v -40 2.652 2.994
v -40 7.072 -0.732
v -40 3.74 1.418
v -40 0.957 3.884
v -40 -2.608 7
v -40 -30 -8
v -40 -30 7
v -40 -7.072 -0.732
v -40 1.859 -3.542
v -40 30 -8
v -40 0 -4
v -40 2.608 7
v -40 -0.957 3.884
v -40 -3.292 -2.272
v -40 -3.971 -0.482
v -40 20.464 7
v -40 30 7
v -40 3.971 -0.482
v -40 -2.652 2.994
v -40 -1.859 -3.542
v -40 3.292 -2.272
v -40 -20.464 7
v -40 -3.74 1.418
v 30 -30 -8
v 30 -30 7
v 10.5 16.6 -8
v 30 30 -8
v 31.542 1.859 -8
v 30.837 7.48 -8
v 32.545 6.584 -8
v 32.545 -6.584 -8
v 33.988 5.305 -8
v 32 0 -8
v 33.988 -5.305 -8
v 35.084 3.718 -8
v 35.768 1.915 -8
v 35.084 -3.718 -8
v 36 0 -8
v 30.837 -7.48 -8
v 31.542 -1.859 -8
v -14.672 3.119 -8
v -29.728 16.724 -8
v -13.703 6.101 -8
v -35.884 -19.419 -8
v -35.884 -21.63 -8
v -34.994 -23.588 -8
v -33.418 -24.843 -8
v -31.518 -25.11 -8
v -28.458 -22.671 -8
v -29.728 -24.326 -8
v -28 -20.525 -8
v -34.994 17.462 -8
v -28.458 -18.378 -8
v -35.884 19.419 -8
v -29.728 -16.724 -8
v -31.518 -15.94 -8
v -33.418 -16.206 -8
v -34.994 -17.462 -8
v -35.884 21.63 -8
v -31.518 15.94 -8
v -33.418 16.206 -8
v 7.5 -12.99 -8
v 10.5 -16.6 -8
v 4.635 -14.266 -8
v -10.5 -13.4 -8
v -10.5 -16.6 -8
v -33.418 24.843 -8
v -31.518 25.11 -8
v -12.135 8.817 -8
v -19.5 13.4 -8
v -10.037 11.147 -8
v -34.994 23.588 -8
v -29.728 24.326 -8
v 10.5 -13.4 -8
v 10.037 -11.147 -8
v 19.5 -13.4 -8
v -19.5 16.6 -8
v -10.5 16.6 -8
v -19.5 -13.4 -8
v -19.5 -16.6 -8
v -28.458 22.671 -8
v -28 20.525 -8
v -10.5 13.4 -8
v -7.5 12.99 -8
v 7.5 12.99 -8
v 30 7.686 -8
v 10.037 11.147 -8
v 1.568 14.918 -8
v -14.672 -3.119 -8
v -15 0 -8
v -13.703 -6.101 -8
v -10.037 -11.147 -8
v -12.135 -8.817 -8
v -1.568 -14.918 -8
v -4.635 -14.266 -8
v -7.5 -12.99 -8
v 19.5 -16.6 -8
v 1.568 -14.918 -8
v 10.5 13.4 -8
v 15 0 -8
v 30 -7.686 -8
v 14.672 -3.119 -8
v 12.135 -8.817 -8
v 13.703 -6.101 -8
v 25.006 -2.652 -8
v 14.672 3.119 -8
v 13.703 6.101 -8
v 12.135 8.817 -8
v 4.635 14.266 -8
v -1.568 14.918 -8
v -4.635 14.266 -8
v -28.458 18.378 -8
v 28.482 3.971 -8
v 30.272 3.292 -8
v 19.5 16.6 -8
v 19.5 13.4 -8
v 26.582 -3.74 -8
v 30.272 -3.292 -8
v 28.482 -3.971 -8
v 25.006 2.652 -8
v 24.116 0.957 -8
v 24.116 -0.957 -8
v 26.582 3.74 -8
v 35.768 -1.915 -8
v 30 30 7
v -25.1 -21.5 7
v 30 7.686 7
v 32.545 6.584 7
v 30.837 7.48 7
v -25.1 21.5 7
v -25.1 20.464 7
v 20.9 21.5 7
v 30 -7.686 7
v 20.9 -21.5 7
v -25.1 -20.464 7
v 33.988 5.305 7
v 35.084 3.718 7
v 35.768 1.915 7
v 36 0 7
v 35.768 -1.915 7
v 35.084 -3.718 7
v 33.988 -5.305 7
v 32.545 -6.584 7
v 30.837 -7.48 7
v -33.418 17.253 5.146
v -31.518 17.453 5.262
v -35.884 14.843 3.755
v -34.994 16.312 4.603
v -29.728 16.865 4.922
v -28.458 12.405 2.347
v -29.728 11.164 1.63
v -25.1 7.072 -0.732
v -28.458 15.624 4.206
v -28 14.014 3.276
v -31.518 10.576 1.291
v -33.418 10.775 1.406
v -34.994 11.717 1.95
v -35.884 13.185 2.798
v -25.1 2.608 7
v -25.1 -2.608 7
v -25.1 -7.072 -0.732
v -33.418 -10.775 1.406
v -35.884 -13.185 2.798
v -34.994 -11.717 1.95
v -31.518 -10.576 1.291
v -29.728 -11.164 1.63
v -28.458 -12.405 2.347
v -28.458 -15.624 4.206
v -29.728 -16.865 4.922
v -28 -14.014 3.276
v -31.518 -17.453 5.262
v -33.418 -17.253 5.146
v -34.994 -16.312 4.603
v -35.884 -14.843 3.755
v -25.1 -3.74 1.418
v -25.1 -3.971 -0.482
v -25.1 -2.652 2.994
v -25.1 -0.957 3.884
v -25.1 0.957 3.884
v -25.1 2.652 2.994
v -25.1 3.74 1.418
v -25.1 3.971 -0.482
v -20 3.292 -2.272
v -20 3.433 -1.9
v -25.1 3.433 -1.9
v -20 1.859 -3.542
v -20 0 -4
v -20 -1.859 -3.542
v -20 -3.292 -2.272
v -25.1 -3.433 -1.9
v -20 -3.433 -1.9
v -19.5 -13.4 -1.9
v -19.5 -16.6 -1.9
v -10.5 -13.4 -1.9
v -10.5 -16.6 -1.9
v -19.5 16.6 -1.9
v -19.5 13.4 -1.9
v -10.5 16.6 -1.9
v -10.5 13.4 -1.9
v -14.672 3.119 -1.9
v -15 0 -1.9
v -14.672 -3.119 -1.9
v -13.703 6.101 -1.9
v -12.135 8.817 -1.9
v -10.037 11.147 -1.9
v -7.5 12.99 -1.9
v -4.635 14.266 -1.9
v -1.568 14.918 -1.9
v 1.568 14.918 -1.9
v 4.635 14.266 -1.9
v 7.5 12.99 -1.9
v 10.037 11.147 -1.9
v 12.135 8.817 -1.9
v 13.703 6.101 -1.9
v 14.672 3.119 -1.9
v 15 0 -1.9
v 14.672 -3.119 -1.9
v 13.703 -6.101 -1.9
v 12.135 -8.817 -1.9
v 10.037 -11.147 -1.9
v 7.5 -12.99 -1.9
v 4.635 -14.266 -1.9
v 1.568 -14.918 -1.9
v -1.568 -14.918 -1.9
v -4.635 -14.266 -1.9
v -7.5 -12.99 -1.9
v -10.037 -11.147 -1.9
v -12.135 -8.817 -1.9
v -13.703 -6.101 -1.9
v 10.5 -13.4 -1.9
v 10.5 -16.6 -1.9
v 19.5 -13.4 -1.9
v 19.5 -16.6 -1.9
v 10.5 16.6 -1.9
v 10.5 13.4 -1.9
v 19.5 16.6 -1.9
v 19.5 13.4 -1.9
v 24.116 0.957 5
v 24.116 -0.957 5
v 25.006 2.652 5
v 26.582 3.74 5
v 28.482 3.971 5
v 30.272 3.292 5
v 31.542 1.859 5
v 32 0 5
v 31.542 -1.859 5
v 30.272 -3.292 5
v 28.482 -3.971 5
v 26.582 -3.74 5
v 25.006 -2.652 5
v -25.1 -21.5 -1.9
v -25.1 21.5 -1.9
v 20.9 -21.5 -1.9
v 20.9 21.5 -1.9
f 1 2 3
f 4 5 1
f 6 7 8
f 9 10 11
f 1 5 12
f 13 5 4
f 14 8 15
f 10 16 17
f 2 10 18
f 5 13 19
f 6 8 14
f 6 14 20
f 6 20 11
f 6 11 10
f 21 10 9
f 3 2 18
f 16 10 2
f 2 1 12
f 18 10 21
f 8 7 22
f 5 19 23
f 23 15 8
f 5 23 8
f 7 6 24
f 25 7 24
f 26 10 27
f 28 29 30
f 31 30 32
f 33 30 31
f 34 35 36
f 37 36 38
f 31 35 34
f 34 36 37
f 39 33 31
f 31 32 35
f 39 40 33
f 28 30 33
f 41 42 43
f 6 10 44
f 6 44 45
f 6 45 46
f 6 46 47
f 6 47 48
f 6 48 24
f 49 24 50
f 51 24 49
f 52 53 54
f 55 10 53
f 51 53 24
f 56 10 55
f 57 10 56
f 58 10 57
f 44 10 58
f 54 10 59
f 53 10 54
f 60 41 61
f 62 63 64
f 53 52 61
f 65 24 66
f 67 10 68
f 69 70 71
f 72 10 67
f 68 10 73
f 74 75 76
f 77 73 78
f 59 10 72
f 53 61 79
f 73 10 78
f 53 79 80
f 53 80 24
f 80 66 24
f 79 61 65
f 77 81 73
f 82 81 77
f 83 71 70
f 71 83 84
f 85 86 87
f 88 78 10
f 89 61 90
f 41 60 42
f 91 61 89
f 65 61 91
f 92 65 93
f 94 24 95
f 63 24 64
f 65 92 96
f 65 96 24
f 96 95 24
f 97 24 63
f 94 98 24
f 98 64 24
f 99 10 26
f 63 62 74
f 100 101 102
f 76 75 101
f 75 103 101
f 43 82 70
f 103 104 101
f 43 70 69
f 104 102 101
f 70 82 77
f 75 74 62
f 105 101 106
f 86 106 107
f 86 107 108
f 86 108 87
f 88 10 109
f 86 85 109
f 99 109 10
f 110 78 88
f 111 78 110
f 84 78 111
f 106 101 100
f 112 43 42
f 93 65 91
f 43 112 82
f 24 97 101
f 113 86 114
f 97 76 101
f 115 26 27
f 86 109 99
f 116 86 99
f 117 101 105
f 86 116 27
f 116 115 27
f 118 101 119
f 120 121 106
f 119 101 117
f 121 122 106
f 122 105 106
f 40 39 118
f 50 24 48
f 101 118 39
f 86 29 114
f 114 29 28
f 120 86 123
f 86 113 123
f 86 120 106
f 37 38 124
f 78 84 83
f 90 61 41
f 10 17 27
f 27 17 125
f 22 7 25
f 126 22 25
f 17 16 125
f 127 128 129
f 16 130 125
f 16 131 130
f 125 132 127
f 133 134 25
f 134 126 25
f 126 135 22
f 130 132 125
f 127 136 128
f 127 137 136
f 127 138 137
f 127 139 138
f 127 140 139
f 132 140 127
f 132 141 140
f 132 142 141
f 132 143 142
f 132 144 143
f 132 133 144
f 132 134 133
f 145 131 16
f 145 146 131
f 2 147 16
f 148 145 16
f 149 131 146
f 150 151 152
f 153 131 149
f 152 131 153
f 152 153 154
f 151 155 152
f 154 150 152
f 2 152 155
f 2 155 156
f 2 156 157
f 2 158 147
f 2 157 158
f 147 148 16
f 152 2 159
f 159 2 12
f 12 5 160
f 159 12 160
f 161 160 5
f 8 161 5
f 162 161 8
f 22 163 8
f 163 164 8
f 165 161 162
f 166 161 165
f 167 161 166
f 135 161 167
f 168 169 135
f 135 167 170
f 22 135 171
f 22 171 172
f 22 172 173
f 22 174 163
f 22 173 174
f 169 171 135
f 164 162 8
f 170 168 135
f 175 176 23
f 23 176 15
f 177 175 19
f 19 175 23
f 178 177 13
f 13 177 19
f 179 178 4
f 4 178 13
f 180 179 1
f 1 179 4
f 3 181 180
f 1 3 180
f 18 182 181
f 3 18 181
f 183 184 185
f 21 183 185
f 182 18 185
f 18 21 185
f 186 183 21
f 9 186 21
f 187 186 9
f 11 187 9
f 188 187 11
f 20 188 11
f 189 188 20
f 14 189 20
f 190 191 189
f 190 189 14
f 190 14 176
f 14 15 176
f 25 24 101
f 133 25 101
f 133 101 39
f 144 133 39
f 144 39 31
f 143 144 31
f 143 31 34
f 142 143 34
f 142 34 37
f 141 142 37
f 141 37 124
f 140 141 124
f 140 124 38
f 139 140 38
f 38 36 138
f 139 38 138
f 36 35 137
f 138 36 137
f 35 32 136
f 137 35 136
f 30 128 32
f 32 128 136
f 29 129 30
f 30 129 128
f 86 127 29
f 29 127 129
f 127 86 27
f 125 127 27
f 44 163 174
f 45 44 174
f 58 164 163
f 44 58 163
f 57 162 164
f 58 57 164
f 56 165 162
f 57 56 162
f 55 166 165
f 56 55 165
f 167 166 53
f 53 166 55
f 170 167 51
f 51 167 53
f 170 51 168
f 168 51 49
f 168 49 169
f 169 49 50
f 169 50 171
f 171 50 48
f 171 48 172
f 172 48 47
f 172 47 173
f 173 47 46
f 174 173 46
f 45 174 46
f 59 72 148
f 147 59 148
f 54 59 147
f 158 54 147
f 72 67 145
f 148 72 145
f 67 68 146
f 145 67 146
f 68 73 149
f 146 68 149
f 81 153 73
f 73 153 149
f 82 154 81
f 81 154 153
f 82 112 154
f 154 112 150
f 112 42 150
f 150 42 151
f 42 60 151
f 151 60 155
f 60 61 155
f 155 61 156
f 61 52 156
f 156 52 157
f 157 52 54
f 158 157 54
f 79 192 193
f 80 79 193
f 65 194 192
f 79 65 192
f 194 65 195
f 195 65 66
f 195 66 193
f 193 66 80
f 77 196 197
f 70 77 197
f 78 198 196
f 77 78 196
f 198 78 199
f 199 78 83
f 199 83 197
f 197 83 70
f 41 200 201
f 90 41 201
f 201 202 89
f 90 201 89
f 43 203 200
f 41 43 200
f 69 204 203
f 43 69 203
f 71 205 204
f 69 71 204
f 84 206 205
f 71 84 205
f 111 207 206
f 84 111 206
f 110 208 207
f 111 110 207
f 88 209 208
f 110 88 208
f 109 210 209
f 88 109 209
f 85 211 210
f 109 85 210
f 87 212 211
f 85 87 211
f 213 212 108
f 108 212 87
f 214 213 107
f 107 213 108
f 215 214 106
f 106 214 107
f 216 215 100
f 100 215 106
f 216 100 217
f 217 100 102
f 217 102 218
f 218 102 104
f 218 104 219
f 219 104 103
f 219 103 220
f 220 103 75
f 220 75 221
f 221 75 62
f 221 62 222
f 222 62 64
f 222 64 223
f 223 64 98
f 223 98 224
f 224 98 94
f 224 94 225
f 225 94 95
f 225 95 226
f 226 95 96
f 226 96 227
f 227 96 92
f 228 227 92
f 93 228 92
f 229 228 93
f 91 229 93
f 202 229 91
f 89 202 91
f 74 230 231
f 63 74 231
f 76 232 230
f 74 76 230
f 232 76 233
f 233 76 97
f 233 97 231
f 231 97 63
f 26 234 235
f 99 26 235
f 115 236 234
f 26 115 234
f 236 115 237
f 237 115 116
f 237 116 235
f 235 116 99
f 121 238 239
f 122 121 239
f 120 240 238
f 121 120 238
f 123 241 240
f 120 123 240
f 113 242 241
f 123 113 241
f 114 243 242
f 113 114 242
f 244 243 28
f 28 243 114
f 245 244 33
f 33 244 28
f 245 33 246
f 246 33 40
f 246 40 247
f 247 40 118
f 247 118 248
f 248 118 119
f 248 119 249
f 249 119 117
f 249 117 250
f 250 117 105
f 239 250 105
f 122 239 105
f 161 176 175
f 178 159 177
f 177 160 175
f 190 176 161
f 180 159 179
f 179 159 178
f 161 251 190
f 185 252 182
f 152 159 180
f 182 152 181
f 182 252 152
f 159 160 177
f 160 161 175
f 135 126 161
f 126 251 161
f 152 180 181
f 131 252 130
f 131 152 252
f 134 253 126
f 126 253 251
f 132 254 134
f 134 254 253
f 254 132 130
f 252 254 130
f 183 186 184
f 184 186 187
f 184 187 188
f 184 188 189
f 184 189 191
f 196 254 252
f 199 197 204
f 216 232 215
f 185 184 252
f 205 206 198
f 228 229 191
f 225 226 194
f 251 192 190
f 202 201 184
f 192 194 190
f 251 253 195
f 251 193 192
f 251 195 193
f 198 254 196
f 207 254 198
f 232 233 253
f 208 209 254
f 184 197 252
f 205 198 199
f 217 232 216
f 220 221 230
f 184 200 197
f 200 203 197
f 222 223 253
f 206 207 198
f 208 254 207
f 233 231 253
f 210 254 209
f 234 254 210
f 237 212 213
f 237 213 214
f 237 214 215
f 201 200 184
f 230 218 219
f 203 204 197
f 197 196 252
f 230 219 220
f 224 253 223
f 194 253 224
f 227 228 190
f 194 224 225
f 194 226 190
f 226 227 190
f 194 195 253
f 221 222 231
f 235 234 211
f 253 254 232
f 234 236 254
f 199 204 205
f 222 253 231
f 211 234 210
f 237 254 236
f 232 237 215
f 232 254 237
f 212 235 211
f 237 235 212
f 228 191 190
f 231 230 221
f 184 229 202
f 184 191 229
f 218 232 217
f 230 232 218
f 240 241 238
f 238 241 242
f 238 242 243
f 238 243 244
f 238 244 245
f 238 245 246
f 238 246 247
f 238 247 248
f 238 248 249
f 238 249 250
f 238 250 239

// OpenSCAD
// PRUSA Mendel  
// Z motor mount -- Used for mounting Z motors
// GNU GPL v2
// Josef Průša
// josefprusa@me.com
// prusadjs.cz
// Clean up by Christopher Olah <christopherolah.co@gmail.com>
// http://www.reprap.org/wiki/Prusa_Mendel
// http://github.com/prusajr/PrusaMendel

difference(){
	// Main body:
	union(){
		translate([-5,0,-0.5]) cube(size = [70,60,15], center = true);
		translate ([28,0,-8]) cylinder(h=15,r=8);
	}
	// Motor sits in this
	translate([-2.1,0,2.6]) cube(size = [46,43,9], center = true);
	// And goes through this
	translate([0,0,-20]) cylinder(h = 20, r=15);
	//The vertical rod goes through here
	translate([28,0,-45]) cylinder(h = 50, r=4.0);
	//top rod:
	translate([-50,0,0]) rotate([0,90,0]) cylinder(h = 30, r=4.0);
	//y symetry
	for (y=[-1,1]) {
		//motor screw holes
		for (x=[-1,1]) translate([15*x,15*y,-5]) cube(size = [9,3.2,15], center = true);
		//diagonal rods
		translate([-32,39*y,-40]) rotate([30*y,0,0]) cylinder (h=100,r=4.0);
		//diagonal rods bottom Knut trapss:
		//translate([-32,39*y,-40]) rotate([30*y,0,0]) cylinder(h=40, r=6.5,$fn =6);
		//diagonal rod nut space 
		translate ([-32.5,13*y,5]) rotate([30*y,0,0]) translate([0,0,3]) cube(size=[15.,16,10],center=true);
	}
}
